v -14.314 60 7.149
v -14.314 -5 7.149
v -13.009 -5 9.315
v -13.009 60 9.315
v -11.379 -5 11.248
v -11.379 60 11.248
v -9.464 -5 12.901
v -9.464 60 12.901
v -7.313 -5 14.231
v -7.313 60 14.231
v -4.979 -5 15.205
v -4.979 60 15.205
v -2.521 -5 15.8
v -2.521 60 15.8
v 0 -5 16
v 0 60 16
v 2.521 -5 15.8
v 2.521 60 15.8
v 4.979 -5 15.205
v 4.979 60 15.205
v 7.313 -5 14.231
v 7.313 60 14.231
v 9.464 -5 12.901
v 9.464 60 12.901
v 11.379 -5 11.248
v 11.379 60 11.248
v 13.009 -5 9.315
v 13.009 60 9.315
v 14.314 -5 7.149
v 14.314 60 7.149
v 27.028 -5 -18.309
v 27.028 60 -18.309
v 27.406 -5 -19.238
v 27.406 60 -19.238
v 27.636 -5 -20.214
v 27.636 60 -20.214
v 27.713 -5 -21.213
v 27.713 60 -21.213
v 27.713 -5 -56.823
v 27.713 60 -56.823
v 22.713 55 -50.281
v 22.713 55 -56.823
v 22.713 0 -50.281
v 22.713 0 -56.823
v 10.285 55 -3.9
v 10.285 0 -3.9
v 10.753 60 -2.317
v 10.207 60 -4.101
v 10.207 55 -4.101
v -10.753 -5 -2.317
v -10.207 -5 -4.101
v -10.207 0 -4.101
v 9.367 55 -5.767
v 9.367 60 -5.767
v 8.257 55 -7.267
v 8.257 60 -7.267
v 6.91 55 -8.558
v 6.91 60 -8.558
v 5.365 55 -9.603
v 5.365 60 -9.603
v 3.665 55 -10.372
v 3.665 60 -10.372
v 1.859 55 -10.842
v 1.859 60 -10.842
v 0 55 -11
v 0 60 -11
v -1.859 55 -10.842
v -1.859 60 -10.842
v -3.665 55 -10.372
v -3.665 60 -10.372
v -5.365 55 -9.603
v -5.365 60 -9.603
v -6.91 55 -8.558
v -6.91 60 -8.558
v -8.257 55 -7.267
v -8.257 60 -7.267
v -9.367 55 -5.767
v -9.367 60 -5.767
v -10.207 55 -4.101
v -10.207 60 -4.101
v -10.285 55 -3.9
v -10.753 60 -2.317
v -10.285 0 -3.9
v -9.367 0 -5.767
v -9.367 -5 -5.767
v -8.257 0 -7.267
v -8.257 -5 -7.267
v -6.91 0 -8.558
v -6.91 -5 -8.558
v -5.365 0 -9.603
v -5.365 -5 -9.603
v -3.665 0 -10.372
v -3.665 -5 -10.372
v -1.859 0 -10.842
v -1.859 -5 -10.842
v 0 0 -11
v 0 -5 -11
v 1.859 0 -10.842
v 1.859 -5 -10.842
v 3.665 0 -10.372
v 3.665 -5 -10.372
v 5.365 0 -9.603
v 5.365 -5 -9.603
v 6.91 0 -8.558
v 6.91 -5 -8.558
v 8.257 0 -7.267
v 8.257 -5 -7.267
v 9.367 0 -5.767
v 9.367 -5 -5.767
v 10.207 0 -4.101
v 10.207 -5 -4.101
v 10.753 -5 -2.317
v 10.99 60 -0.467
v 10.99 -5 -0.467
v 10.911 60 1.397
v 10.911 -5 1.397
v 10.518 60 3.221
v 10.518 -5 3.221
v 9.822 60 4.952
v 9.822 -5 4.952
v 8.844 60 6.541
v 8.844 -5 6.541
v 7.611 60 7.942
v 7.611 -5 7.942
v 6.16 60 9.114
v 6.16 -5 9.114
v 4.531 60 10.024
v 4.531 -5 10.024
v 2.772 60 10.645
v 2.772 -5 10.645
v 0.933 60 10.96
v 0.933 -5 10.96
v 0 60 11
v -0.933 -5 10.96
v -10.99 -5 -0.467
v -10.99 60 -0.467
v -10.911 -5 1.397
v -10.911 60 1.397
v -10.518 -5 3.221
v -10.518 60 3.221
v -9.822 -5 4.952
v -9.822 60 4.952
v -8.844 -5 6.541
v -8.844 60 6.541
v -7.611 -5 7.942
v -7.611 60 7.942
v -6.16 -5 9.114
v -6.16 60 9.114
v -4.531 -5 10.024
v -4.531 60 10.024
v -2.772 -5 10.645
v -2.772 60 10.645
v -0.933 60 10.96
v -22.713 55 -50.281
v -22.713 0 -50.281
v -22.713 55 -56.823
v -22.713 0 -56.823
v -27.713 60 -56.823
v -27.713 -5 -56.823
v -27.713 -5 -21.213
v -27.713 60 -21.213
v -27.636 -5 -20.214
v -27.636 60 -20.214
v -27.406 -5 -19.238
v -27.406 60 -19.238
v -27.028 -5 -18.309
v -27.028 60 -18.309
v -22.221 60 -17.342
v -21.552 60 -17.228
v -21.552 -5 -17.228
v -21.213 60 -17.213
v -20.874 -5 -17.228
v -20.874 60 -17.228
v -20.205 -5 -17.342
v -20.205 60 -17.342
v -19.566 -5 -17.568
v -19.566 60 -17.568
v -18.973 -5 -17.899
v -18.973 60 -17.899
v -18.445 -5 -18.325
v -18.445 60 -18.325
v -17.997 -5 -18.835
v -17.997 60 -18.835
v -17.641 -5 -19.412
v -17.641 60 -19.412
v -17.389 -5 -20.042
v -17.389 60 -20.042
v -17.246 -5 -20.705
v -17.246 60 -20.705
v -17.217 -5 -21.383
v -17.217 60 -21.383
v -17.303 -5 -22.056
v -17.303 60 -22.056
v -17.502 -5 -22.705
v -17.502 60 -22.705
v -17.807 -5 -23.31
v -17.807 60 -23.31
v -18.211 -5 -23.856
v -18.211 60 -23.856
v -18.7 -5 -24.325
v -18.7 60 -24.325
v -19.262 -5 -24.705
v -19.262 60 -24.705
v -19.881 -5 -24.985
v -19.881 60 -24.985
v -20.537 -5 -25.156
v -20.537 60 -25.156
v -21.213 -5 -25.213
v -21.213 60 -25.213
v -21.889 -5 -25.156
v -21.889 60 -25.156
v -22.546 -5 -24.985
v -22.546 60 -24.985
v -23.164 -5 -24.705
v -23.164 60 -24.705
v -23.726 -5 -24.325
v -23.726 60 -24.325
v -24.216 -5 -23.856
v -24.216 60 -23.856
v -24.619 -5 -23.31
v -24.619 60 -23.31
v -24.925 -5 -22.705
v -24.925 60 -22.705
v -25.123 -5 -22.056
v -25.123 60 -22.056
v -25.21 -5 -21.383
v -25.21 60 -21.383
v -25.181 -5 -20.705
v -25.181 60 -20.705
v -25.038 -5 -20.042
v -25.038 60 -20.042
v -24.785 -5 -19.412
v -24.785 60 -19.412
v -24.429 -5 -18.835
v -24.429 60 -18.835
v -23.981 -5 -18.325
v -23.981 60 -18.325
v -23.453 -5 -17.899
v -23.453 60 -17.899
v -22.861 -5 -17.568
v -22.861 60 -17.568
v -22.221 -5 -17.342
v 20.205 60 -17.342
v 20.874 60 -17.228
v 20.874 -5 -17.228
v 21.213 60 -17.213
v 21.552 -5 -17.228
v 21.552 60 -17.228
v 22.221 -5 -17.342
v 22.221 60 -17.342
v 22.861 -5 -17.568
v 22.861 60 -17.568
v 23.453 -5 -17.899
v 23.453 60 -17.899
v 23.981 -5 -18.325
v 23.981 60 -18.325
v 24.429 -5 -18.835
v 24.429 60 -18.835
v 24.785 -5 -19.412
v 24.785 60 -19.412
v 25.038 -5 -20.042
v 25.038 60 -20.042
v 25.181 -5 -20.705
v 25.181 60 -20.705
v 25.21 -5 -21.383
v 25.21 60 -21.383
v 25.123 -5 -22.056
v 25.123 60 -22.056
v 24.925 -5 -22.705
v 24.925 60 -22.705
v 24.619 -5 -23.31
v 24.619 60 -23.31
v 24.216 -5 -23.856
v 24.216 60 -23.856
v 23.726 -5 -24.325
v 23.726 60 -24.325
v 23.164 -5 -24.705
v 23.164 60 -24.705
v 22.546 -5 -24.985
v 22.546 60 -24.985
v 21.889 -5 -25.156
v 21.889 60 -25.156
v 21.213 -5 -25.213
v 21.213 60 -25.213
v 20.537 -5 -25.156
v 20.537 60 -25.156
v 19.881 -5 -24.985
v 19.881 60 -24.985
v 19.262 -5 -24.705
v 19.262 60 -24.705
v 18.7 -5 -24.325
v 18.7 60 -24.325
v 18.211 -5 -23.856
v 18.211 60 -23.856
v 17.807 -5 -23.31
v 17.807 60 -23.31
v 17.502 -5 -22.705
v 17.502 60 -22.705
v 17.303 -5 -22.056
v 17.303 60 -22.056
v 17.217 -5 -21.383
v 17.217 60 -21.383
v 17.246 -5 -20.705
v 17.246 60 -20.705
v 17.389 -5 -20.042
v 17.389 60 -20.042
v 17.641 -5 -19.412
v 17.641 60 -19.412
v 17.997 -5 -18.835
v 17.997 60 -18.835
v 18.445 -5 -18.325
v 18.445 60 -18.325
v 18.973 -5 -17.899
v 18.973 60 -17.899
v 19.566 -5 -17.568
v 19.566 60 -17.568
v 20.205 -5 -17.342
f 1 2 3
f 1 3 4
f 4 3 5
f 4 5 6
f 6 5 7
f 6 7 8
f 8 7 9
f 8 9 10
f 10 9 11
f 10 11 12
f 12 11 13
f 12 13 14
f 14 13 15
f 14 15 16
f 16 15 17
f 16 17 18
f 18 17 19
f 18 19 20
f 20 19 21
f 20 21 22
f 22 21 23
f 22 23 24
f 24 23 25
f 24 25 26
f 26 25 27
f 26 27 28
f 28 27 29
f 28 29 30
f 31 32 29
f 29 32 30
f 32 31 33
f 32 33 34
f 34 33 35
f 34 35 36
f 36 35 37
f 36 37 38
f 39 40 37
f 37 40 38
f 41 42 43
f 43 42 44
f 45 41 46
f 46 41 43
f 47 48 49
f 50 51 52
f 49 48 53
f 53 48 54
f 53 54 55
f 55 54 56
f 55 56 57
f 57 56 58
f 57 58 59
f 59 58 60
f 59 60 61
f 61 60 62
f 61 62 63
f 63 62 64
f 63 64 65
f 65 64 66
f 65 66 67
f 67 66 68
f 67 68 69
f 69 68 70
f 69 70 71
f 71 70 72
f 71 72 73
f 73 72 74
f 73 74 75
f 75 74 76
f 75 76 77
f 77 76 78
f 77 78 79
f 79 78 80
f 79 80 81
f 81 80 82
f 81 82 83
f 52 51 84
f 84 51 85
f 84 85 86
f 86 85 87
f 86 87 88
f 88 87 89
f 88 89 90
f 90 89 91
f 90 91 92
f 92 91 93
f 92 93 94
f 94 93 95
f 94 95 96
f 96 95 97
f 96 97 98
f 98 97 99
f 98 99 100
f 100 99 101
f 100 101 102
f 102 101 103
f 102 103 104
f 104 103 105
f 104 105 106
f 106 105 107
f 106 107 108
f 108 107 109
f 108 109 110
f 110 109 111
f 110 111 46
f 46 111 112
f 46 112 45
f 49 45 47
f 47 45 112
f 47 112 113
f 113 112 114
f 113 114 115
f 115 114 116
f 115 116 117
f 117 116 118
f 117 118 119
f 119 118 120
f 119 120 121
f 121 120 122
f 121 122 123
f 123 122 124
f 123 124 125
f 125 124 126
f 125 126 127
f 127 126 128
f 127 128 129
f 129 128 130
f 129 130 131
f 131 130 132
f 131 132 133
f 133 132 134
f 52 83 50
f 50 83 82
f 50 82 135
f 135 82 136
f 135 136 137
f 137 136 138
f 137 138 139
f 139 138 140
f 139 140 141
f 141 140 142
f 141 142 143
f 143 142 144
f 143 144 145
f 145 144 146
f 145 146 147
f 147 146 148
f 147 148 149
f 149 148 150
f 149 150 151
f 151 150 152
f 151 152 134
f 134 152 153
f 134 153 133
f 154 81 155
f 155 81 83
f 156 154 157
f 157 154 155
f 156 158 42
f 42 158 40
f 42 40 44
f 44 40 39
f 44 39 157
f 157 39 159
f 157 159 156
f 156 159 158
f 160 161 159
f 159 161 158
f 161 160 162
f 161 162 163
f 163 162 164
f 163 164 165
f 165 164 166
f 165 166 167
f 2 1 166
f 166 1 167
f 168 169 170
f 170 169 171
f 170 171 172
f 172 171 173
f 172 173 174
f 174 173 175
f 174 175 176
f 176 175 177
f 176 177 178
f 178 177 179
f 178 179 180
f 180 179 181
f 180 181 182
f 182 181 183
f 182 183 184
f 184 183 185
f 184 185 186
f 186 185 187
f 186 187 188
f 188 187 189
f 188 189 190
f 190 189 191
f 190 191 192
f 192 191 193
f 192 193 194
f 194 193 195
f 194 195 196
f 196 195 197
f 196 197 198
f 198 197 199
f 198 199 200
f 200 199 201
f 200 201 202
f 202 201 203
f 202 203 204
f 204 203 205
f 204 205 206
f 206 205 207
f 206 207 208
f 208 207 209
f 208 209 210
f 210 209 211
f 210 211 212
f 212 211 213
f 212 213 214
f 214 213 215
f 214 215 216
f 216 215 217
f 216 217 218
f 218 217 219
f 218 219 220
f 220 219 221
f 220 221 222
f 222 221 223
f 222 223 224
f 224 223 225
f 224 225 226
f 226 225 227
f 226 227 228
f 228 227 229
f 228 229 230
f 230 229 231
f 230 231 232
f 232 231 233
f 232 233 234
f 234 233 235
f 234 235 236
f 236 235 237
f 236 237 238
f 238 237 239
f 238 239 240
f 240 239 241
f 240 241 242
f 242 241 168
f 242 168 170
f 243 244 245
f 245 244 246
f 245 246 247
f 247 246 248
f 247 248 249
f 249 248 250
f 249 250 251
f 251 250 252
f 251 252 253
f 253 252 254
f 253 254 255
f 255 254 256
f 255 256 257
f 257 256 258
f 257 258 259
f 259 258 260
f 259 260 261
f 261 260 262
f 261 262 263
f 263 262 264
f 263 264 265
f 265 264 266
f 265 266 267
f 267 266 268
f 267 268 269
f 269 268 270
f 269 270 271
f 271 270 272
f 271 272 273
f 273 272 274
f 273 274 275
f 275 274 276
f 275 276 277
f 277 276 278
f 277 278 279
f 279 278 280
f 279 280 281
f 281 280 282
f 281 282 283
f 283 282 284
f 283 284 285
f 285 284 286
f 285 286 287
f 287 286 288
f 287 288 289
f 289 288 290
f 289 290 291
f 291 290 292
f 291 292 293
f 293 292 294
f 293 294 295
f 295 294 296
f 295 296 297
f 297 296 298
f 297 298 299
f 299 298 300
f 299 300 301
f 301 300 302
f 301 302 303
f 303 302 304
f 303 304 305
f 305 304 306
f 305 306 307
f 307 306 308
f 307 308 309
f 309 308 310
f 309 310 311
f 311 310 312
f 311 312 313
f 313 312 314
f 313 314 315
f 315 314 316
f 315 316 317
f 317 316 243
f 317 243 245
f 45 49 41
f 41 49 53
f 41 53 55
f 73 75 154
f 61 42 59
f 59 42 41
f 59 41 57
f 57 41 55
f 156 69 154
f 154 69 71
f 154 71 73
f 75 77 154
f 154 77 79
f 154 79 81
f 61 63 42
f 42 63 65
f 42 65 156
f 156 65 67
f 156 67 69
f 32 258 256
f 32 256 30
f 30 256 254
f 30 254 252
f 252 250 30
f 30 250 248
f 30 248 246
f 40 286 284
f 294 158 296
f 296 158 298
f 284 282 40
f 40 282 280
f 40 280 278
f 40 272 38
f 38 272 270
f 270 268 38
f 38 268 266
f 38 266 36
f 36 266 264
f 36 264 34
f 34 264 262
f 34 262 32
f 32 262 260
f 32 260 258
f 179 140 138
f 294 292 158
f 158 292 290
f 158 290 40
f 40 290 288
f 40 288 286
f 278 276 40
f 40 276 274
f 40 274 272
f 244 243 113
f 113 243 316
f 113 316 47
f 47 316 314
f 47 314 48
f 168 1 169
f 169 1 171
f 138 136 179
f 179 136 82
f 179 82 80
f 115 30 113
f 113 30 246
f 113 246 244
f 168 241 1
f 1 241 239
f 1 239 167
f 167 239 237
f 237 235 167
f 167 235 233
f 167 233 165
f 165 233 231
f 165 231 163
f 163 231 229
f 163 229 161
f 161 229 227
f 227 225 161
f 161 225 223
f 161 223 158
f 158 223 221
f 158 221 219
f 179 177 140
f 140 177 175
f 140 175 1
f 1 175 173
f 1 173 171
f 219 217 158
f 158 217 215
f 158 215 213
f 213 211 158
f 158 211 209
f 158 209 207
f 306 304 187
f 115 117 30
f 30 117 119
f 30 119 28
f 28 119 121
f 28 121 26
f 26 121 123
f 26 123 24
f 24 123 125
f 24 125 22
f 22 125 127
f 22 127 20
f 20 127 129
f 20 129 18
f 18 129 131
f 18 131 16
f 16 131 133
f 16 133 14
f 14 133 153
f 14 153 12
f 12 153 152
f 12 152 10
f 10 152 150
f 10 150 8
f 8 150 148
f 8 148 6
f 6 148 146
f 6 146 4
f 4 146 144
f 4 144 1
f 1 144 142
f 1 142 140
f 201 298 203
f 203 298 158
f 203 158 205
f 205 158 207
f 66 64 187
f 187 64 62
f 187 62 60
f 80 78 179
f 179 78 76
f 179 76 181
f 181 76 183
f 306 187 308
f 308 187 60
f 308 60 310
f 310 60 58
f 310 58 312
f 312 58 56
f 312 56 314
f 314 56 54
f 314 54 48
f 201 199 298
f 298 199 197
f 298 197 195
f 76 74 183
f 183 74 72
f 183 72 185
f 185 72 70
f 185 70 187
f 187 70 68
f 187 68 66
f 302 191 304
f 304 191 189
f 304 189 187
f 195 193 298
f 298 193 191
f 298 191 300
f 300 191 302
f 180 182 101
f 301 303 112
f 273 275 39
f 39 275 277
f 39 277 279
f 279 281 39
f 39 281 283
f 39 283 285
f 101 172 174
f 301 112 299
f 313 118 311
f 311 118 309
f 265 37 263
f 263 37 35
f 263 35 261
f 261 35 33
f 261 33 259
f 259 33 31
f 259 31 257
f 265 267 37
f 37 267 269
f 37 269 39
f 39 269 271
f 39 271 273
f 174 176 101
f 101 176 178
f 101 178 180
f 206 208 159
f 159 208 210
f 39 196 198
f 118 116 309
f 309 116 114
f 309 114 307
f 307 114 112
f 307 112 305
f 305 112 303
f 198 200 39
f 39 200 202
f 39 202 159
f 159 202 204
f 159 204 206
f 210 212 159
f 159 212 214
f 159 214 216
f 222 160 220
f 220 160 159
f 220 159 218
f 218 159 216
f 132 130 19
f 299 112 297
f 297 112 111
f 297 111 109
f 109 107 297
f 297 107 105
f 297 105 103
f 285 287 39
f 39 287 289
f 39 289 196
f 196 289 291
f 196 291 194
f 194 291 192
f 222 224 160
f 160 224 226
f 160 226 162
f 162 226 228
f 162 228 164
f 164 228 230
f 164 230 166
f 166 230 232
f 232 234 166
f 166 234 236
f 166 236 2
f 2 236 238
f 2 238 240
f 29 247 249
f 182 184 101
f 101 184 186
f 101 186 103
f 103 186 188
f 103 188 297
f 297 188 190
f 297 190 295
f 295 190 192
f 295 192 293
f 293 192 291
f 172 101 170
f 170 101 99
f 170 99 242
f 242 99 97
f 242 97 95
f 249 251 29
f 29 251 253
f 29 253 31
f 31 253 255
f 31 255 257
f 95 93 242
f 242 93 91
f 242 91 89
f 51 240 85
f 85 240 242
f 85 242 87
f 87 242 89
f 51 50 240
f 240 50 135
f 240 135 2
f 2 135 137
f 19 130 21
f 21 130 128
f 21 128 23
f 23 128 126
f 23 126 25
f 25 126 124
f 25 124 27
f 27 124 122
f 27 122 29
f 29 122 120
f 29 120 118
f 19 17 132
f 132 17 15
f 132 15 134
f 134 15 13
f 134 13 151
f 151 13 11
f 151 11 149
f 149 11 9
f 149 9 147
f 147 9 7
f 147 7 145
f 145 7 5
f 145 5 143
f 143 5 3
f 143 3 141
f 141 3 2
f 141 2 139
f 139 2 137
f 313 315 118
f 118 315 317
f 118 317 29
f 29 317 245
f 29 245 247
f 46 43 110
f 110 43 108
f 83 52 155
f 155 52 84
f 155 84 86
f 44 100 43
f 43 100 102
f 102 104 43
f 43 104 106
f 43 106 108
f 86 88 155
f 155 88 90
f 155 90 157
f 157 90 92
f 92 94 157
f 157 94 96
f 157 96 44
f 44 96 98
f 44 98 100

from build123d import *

# Parameters (mm, degrees)
SKETCH1_R           = 4
BOSS_EXTRUDE3_DEPTH = 55
SKETCH4_R           = 4
SKETCH4_R_2         = 11
BOSS_EXTRUDE4_DEPTH = 5
SKETCH5_R           = 11
SKETCH5_R_2         = 4
BOSS_EXTRUDE5_DEPTH = 5


with BuildPart() as part:
    # Sketch1 → Boss-Extrude3 (new body)
    with BuildSketch(Plane(origin=(0, 0, 0), x_dir=(1, 0, 0), z_dir=(0, 1, 0))):
        with BuildLine():
            Line((14.314144176, -7.14879546), (27.028324507, 18.30900528))
            ThreePointArc((27.028324507, 18.30900528), (27.539667178, 19.721272969), (27.713203436, 21.213203436))
            Line((27.713203436, 21.213203436), (27.713203436, 56.823174316))
            Line((27.713203436, 56.823174316), (22.713203436, 56.823174316))
            Line((22.713203436, 56.823174316), (22.713203436, 50.281094638))
            Line((22.713203436, 50.281094638), (10.285426583, 3.9))
            ThreePointArc((10.285426583, 3.9), (0, -11), (-10.285426583, 3.9))
            Line((-10.285426583, 3.9), (-22.713203436, 50.281094638))
            Line((-22.713203436, 50.281094638), (-22.713203436, 56.823174316))
            Line((-22.713203436, 56.823174316), (-27.713203436, 56.823174316))
            Line((-27.713203436, 56.823174316), (-27.713203436, 21.213203436))
            ThreePointArc((-27.713203436, 21.213203436), (-27.539667178, 19.721272969), (-27.028324507, 18.30900528))
            Line((-27.028324507, 18.30900528), (-14.314144176, -7.14879546))
            ThreePointArc((-14.314144176, -7.14879546), (0, -16), (14.314144176, -7.14879546))
        make_face()
        with Locations((-21.213203436, 21.213203436)):
            Circle(SKETCH1_R, mode=Mode.SUBTRACT)
        with Locations((21.213203436, 21.213203436)):
            Circle(SKETCH1_R, mode=Mode.SUBTRACT)
    extrude(amount=BOSS_EXTRUDE3_DEPTH)

    # Sketch4 → Boss-Extrude4 (add)
    with BuildSketch(Plane(origin=(0, 55, 0), x_dir=(1, 0, 0), z_dir=(0, 1, 0))):
        with BuildLine():
            Line((-27.713203436, 21.213203436), (-27.713203436, 56.823174316))
            Line((-27.713203436, 56.823174316), (27.713203436, 56.823174316))
            Line((27.713203436, 56.823174316), (27.713203436, 21.213203436))
            ThreePointArc((27.713203436, 21.213203436), (27.539667178, 19.721272969), (27.028324507, 18.30900528))
            Line((27.028324507, 18.30900528), (14.314144176, -7.14879546))
            ThreePointArc((14.314144176, -7.14879546), (0, -16), (-14.314144176, -7.14879546))
            Line((-14.314144176, -7.14879546), (-27.028324507, 18.30900528))
            ThreePointArc((-27.028324507, 18.30900528), (-27.539667178, 19.721272969), (-27.713203436, 21.213203436))
        make_face()
        with Locations((-21.213203436, 21.213203436)):
            Circle(SKETCH4_R, mode=Mode.SUBTRACT)
        with Locations((21.213203436, 21.213203436)):
            Circle(SKETCH4_R, mode=Mode.SUBTRACT)
        Circle(SKETCH4_R_2, mode=Mode.SUBTRACT)
    extrude(amount=BOSS_EXTRUDE4_DEPTH)

    # Sketch5 → Boss-Extrude5 (add)
    with BuildSketch(Plane.XZ):
        with BuildLine():
            Line((-27.028324507, -18.30900528), (-14.314144176, 7.14879546))
            ThreePointArc((-14.314144176, 7.14879546), (0, 16), (14.314144176, 7.14879546))
            Line((14.314144176, 7.14879546), (27.028324507, -18.30900528))
            ThreePointArc((27.028324507, -18.30900528), (27.539667178, -19.721272969), (27.713203436, -21.213203436))
            Line((27.713203436, -21.213203436), (27.713203436, -56.823174316))
            Line((27.713203436, -56.823174316), (-27.713203436, -56.823174316))
            Line((-27.713203436, -56.823174316), (-27.713203436, -21.213203436))
            ThreePointArc((-27.713203436, -21.213203436), (-27.539667178, -19.721272969), (-27.028324507, -18.30900528))
        make_face()
        Circle(SKETCH5_R, mode=Mode.SUBTRACT)
        with Locations((21.213203436, -21.213203436)):
            Circle(SKETCH5_R_2, mode=Mode.SUBTRACT)
        with Locations((-21.213203436, -21.213203436)):
            Circle(SKETCH5_R_2, mode=Mode.SUBTRACT)
    extrude(amount=BOSS_EXTRUDE5_DEPTH)


solid = part.part
